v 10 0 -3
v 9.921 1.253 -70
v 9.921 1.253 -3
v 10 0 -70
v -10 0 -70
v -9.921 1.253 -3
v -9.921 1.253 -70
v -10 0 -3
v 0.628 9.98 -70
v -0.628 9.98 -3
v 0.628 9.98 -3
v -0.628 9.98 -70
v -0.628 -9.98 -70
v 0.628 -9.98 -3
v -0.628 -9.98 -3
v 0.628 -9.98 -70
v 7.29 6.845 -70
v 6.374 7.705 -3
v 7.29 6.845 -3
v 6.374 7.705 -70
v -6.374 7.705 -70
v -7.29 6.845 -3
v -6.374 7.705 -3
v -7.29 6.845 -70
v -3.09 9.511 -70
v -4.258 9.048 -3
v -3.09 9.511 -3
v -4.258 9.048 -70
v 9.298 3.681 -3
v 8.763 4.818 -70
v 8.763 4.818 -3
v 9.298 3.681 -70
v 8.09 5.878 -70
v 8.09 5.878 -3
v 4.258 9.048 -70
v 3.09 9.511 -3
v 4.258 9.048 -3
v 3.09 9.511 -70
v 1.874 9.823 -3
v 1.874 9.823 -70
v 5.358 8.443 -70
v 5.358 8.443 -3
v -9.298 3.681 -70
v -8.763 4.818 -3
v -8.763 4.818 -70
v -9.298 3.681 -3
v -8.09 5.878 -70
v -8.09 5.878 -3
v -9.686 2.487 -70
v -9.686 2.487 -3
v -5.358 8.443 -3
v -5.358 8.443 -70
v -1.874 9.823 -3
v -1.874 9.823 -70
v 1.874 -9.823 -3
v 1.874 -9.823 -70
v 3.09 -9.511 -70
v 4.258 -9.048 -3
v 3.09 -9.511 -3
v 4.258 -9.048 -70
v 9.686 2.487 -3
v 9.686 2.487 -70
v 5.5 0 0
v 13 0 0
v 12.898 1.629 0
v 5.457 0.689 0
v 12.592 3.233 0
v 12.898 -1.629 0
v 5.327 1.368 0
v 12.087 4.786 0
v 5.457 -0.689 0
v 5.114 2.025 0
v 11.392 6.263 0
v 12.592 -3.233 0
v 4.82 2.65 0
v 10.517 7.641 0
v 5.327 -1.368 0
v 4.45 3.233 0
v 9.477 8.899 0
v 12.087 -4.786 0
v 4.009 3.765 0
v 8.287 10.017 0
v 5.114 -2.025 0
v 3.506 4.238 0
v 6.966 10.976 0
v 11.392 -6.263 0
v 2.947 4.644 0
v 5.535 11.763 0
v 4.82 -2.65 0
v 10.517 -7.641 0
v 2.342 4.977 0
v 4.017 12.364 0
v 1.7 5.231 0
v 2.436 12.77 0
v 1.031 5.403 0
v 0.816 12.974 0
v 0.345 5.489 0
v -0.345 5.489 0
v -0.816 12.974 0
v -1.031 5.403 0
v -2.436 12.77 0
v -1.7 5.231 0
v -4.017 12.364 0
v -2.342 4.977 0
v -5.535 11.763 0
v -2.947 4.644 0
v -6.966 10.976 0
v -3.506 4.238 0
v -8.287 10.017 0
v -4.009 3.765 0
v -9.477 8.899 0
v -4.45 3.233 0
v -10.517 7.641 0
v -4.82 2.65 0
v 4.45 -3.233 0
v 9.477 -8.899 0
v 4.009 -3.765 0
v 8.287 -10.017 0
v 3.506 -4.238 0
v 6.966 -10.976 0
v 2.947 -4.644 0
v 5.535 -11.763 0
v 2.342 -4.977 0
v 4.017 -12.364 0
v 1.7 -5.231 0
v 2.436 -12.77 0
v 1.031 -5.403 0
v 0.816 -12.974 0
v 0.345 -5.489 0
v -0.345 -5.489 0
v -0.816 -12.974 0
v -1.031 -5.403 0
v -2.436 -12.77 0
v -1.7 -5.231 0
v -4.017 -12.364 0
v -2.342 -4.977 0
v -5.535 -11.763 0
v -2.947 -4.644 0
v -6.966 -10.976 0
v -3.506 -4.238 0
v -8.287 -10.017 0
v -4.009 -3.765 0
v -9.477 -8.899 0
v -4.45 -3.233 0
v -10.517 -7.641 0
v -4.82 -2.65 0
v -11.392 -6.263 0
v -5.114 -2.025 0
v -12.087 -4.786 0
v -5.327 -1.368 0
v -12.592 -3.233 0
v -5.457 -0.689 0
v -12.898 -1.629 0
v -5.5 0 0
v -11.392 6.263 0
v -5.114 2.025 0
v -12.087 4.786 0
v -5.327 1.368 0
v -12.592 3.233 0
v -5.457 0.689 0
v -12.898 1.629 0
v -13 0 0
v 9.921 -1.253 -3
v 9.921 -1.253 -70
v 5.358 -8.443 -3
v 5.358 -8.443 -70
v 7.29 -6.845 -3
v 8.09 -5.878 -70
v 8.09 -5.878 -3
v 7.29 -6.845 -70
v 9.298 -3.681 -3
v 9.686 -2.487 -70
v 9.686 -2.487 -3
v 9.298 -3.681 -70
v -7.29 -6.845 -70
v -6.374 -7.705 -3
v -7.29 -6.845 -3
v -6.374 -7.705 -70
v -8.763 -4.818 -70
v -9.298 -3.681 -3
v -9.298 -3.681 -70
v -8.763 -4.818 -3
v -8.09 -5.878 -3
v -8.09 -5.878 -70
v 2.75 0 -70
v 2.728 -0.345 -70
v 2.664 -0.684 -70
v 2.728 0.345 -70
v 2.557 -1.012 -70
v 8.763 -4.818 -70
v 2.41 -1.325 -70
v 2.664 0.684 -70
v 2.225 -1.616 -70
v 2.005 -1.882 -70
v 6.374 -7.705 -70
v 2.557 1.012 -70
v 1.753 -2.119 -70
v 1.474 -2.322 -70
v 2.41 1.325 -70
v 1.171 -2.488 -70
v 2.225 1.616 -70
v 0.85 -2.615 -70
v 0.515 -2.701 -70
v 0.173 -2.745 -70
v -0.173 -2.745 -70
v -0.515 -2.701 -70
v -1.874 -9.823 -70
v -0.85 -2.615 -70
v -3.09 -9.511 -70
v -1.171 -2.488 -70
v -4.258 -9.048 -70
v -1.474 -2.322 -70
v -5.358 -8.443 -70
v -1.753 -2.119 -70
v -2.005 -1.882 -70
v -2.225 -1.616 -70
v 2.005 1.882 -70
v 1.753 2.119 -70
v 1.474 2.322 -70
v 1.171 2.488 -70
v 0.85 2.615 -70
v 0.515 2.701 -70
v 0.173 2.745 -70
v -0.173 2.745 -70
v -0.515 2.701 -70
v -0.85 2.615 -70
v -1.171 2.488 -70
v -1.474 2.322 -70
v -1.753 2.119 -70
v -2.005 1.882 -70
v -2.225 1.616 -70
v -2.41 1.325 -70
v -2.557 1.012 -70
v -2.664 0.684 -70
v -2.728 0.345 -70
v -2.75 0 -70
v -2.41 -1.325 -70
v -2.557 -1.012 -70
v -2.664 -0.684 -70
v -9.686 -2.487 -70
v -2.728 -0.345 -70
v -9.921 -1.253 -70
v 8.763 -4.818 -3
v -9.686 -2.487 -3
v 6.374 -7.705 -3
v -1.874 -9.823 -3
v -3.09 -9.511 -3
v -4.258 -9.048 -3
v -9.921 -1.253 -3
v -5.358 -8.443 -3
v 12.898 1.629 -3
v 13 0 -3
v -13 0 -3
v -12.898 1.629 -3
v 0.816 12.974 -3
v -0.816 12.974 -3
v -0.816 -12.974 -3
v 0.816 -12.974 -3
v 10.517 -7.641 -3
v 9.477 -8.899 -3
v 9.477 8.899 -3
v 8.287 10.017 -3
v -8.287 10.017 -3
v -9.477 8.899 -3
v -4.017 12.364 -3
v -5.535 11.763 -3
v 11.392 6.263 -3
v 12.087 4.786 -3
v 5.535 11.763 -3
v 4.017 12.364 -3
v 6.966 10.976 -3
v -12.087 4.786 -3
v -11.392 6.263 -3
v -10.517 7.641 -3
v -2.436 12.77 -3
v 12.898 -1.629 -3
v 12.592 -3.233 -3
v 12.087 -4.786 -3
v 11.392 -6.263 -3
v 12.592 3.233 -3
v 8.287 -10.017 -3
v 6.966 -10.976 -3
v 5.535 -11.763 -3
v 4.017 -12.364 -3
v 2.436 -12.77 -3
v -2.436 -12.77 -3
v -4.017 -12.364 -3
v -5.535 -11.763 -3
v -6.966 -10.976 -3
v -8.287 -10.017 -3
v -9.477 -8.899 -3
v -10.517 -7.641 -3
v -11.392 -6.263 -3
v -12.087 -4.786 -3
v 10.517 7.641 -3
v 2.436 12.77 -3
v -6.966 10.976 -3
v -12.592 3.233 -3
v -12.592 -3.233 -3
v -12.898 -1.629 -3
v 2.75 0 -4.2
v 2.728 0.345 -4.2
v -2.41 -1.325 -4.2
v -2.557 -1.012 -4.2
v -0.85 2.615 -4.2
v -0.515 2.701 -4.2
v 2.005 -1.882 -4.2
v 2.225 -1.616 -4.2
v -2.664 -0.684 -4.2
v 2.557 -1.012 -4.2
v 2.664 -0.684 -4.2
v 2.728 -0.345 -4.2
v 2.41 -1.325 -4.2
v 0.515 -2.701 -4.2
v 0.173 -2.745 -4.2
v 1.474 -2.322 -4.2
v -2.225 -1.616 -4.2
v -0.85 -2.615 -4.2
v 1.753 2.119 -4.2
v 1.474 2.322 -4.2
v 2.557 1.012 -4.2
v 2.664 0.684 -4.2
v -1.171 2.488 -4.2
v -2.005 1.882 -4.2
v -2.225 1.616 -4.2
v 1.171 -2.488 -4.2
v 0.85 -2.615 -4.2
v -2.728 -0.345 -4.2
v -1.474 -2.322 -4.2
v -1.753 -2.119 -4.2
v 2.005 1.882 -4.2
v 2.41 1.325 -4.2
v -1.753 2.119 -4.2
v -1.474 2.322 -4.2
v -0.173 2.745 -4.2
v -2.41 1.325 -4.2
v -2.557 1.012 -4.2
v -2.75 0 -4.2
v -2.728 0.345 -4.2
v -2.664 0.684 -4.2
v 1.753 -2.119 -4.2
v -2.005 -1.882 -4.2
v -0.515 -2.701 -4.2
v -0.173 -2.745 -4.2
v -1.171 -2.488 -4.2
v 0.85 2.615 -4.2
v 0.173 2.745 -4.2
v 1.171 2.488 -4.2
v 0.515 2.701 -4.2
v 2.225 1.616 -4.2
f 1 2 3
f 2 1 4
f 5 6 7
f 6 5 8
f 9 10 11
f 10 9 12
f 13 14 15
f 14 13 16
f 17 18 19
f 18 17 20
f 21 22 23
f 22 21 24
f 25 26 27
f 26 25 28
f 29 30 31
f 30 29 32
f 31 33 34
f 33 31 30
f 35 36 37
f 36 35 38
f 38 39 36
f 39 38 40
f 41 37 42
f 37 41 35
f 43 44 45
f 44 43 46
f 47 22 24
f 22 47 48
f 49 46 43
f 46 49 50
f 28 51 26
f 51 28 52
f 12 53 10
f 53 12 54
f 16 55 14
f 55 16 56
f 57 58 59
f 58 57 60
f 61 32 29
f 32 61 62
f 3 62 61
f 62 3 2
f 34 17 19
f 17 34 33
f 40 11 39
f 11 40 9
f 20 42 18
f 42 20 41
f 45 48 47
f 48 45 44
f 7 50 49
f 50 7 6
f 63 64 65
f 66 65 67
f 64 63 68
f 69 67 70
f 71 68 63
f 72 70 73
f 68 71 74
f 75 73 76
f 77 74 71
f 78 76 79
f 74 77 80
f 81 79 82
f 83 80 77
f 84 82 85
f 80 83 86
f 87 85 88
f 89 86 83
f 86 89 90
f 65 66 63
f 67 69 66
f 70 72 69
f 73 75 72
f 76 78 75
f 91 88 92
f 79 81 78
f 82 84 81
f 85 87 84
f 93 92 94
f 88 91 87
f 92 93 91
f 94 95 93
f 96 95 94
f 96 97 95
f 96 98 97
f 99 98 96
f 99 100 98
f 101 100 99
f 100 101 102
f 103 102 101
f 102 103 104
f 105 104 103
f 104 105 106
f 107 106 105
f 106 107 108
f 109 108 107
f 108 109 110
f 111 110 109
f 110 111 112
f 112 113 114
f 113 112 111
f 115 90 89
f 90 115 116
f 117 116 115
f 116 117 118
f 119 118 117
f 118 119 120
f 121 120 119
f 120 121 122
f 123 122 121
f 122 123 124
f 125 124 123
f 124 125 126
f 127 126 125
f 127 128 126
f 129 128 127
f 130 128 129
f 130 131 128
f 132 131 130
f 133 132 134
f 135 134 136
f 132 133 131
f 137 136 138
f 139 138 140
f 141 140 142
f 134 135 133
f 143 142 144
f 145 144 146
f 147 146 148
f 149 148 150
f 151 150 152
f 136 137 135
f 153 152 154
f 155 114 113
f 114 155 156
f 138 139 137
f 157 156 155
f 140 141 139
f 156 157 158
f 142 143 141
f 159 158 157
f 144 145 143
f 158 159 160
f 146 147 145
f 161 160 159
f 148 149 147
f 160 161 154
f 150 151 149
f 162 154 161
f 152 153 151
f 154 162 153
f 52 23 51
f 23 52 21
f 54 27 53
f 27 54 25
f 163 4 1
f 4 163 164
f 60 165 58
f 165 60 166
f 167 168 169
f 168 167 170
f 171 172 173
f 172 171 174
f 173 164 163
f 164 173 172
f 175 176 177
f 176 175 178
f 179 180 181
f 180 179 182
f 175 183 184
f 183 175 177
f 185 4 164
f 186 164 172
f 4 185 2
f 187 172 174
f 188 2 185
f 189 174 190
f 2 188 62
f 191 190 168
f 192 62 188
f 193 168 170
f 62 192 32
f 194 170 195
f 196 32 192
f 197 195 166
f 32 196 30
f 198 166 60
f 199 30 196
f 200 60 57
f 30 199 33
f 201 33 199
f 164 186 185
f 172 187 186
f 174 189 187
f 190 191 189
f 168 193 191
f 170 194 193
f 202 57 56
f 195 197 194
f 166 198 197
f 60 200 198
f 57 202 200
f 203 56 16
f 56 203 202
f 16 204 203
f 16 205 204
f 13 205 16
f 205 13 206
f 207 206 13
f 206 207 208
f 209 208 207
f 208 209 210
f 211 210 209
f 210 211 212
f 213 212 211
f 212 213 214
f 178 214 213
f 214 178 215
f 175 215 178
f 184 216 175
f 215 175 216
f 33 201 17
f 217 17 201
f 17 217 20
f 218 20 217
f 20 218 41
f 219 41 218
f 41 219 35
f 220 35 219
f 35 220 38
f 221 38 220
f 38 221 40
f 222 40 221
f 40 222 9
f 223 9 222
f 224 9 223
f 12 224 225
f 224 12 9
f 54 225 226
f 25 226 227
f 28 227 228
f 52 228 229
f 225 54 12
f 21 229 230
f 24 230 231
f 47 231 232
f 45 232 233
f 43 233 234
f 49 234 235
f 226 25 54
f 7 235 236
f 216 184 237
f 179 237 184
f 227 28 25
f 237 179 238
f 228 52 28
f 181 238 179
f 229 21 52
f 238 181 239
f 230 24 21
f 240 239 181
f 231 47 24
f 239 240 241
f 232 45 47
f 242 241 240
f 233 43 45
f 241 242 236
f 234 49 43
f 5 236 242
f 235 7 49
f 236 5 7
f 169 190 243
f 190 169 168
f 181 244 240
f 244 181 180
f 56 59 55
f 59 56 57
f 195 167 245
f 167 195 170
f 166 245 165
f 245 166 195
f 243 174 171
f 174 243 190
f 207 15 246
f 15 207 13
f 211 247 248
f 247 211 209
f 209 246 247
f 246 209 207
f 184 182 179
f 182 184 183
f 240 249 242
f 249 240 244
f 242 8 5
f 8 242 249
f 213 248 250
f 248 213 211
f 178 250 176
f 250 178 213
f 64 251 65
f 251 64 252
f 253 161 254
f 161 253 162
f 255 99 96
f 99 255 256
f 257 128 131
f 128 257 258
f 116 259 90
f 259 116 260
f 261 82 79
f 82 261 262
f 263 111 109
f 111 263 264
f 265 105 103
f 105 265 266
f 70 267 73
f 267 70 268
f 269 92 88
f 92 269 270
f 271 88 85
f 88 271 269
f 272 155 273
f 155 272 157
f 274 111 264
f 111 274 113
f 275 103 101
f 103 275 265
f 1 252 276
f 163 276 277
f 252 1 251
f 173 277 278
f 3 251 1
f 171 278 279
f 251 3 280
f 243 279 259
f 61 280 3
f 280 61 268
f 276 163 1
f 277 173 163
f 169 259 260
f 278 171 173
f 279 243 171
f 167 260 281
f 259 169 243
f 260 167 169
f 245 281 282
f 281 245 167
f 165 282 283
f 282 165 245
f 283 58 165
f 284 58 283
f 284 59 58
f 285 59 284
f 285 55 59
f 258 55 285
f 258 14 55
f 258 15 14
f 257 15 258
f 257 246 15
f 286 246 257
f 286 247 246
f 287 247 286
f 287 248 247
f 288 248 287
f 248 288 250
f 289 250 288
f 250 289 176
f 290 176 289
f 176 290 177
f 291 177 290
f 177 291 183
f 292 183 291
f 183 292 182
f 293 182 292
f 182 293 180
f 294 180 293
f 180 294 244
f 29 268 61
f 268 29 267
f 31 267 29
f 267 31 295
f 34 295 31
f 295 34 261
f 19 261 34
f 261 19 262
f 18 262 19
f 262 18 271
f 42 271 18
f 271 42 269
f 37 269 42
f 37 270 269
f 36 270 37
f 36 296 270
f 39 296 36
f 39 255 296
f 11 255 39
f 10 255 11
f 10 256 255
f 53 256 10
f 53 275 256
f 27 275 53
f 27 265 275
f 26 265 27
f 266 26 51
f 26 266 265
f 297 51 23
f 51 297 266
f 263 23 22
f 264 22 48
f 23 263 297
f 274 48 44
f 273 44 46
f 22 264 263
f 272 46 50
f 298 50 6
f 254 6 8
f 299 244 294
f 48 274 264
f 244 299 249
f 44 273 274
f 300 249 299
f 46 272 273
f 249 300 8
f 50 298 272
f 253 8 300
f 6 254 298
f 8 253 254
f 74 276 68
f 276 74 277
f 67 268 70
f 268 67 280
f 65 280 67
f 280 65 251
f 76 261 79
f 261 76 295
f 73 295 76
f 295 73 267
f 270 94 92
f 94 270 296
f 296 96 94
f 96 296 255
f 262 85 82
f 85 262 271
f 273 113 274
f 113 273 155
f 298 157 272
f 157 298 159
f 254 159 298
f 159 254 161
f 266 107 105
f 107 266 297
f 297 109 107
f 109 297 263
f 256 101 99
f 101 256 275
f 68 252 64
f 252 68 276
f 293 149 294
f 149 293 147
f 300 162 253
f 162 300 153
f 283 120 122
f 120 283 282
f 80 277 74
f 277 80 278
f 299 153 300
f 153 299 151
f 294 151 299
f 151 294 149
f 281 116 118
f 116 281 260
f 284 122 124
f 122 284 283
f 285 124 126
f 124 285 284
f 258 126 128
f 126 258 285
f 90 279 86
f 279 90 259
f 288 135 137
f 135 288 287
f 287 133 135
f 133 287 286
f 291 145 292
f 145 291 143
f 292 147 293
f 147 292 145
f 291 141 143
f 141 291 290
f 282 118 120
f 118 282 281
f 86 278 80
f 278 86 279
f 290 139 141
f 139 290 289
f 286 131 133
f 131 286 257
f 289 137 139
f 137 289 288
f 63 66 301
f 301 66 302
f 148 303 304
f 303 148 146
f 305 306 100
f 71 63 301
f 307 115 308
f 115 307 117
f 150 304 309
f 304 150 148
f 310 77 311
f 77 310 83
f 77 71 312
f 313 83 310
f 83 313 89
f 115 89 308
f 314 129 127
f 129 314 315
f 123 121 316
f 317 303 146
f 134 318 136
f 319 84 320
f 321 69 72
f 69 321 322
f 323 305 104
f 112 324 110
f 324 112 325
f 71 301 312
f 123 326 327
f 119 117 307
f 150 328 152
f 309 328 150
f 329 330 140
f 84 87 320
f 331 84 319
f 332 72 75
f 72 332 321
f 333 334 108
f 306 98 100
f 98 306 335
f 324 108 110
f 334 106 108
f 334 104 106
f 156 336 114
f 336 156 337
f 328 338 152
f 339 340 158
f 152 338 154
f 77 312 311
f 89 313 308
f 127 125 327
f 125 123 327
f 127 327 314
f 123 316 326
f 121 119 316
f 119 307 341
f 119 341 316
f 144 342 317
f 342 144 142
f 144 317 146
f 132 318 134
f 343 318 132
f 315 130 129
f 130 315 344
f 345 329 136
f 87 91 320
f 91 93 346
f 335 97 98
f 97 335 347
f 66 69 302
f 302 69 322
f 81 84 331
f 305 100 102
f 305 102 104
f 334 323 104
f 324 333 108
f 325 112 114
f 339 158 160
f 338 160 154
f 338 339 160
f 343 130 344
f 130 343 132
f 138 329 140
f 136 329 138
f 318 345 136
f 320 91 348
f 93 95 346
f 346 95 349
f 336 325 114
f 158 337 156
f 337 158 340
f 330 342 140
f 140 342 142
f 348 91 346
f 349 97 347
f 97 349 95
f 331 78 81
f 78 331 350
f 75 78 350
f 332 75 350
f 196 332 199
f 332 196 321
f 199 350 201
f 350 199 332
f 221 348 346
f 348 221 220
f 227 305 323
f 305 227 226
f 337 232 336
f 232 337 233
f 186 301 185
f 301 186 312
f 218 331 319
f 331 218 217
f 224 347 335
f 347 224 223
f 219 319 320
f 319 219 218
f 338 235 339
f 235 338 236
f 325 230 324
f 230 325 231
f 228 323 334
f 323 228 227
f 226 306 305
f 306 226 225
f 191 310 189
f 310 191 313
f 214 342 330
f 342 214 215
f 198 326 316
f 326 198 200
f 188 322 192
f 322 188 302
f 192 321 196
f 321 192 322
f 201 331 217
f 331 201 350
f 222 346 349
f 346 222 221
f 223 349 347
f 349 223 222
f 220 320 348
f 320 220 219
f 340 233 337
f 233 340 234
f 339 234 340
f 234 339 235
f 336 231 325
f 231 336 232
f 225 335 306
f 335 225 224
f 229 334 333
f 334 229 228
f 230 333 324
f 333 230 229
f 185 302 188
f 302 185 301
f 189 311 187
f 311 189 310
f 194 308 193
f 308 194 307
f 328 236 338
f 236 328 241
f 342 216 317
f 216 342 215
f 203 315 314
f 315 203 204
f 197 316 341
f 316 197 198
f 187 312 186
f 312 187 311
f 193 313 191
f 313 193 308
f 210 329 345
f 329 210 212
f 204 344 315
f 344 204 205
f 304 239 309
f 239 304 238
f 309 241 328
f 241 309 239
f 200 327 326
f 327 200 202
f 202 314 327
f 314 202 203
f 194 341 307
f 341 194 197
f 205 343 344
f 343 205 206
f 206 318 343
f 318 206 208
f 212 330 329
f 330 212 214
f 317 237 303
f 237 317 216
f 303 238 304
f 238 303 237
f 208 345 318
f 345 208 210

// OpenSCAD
$fn = 50;


difference() {
	union() {
		translate(v = [0, 0, -70.0000000000]) {
			cylinder(h = 70, r = 10.0000000000);
		}
		translate(v = [0, 0, -3.0000000000]) {
			cylinder(h = 3, r = 13.0000000000);
		}
	}
	union() {
		translate(v = [0, 0, 0]) {
			rotate(a = [0, 0, 0]) {
				difference() {
					union() {
						#translate(v = [0, 0, -70.0000000000]) {
							cylinder(h = 70, r = 2.2500000000);
						}
						#translate(v = [0, 0, -4.2000000000]) {
							cylinder(h = 4.2000000000, r1 = 2.7500000000, r2 = 5.5000000000);
						}
						#translate(v = [0, 0, -70.0000000000]) {
							cylinder(h = 70, r = 2.7500000000);
						}
						#translate(v = [0, 0, -70.0000000000]) {
							cylinder(h = 70, r = 2.2500000000);
						}
					}
					union();
				}
			}
		}
	}
}
